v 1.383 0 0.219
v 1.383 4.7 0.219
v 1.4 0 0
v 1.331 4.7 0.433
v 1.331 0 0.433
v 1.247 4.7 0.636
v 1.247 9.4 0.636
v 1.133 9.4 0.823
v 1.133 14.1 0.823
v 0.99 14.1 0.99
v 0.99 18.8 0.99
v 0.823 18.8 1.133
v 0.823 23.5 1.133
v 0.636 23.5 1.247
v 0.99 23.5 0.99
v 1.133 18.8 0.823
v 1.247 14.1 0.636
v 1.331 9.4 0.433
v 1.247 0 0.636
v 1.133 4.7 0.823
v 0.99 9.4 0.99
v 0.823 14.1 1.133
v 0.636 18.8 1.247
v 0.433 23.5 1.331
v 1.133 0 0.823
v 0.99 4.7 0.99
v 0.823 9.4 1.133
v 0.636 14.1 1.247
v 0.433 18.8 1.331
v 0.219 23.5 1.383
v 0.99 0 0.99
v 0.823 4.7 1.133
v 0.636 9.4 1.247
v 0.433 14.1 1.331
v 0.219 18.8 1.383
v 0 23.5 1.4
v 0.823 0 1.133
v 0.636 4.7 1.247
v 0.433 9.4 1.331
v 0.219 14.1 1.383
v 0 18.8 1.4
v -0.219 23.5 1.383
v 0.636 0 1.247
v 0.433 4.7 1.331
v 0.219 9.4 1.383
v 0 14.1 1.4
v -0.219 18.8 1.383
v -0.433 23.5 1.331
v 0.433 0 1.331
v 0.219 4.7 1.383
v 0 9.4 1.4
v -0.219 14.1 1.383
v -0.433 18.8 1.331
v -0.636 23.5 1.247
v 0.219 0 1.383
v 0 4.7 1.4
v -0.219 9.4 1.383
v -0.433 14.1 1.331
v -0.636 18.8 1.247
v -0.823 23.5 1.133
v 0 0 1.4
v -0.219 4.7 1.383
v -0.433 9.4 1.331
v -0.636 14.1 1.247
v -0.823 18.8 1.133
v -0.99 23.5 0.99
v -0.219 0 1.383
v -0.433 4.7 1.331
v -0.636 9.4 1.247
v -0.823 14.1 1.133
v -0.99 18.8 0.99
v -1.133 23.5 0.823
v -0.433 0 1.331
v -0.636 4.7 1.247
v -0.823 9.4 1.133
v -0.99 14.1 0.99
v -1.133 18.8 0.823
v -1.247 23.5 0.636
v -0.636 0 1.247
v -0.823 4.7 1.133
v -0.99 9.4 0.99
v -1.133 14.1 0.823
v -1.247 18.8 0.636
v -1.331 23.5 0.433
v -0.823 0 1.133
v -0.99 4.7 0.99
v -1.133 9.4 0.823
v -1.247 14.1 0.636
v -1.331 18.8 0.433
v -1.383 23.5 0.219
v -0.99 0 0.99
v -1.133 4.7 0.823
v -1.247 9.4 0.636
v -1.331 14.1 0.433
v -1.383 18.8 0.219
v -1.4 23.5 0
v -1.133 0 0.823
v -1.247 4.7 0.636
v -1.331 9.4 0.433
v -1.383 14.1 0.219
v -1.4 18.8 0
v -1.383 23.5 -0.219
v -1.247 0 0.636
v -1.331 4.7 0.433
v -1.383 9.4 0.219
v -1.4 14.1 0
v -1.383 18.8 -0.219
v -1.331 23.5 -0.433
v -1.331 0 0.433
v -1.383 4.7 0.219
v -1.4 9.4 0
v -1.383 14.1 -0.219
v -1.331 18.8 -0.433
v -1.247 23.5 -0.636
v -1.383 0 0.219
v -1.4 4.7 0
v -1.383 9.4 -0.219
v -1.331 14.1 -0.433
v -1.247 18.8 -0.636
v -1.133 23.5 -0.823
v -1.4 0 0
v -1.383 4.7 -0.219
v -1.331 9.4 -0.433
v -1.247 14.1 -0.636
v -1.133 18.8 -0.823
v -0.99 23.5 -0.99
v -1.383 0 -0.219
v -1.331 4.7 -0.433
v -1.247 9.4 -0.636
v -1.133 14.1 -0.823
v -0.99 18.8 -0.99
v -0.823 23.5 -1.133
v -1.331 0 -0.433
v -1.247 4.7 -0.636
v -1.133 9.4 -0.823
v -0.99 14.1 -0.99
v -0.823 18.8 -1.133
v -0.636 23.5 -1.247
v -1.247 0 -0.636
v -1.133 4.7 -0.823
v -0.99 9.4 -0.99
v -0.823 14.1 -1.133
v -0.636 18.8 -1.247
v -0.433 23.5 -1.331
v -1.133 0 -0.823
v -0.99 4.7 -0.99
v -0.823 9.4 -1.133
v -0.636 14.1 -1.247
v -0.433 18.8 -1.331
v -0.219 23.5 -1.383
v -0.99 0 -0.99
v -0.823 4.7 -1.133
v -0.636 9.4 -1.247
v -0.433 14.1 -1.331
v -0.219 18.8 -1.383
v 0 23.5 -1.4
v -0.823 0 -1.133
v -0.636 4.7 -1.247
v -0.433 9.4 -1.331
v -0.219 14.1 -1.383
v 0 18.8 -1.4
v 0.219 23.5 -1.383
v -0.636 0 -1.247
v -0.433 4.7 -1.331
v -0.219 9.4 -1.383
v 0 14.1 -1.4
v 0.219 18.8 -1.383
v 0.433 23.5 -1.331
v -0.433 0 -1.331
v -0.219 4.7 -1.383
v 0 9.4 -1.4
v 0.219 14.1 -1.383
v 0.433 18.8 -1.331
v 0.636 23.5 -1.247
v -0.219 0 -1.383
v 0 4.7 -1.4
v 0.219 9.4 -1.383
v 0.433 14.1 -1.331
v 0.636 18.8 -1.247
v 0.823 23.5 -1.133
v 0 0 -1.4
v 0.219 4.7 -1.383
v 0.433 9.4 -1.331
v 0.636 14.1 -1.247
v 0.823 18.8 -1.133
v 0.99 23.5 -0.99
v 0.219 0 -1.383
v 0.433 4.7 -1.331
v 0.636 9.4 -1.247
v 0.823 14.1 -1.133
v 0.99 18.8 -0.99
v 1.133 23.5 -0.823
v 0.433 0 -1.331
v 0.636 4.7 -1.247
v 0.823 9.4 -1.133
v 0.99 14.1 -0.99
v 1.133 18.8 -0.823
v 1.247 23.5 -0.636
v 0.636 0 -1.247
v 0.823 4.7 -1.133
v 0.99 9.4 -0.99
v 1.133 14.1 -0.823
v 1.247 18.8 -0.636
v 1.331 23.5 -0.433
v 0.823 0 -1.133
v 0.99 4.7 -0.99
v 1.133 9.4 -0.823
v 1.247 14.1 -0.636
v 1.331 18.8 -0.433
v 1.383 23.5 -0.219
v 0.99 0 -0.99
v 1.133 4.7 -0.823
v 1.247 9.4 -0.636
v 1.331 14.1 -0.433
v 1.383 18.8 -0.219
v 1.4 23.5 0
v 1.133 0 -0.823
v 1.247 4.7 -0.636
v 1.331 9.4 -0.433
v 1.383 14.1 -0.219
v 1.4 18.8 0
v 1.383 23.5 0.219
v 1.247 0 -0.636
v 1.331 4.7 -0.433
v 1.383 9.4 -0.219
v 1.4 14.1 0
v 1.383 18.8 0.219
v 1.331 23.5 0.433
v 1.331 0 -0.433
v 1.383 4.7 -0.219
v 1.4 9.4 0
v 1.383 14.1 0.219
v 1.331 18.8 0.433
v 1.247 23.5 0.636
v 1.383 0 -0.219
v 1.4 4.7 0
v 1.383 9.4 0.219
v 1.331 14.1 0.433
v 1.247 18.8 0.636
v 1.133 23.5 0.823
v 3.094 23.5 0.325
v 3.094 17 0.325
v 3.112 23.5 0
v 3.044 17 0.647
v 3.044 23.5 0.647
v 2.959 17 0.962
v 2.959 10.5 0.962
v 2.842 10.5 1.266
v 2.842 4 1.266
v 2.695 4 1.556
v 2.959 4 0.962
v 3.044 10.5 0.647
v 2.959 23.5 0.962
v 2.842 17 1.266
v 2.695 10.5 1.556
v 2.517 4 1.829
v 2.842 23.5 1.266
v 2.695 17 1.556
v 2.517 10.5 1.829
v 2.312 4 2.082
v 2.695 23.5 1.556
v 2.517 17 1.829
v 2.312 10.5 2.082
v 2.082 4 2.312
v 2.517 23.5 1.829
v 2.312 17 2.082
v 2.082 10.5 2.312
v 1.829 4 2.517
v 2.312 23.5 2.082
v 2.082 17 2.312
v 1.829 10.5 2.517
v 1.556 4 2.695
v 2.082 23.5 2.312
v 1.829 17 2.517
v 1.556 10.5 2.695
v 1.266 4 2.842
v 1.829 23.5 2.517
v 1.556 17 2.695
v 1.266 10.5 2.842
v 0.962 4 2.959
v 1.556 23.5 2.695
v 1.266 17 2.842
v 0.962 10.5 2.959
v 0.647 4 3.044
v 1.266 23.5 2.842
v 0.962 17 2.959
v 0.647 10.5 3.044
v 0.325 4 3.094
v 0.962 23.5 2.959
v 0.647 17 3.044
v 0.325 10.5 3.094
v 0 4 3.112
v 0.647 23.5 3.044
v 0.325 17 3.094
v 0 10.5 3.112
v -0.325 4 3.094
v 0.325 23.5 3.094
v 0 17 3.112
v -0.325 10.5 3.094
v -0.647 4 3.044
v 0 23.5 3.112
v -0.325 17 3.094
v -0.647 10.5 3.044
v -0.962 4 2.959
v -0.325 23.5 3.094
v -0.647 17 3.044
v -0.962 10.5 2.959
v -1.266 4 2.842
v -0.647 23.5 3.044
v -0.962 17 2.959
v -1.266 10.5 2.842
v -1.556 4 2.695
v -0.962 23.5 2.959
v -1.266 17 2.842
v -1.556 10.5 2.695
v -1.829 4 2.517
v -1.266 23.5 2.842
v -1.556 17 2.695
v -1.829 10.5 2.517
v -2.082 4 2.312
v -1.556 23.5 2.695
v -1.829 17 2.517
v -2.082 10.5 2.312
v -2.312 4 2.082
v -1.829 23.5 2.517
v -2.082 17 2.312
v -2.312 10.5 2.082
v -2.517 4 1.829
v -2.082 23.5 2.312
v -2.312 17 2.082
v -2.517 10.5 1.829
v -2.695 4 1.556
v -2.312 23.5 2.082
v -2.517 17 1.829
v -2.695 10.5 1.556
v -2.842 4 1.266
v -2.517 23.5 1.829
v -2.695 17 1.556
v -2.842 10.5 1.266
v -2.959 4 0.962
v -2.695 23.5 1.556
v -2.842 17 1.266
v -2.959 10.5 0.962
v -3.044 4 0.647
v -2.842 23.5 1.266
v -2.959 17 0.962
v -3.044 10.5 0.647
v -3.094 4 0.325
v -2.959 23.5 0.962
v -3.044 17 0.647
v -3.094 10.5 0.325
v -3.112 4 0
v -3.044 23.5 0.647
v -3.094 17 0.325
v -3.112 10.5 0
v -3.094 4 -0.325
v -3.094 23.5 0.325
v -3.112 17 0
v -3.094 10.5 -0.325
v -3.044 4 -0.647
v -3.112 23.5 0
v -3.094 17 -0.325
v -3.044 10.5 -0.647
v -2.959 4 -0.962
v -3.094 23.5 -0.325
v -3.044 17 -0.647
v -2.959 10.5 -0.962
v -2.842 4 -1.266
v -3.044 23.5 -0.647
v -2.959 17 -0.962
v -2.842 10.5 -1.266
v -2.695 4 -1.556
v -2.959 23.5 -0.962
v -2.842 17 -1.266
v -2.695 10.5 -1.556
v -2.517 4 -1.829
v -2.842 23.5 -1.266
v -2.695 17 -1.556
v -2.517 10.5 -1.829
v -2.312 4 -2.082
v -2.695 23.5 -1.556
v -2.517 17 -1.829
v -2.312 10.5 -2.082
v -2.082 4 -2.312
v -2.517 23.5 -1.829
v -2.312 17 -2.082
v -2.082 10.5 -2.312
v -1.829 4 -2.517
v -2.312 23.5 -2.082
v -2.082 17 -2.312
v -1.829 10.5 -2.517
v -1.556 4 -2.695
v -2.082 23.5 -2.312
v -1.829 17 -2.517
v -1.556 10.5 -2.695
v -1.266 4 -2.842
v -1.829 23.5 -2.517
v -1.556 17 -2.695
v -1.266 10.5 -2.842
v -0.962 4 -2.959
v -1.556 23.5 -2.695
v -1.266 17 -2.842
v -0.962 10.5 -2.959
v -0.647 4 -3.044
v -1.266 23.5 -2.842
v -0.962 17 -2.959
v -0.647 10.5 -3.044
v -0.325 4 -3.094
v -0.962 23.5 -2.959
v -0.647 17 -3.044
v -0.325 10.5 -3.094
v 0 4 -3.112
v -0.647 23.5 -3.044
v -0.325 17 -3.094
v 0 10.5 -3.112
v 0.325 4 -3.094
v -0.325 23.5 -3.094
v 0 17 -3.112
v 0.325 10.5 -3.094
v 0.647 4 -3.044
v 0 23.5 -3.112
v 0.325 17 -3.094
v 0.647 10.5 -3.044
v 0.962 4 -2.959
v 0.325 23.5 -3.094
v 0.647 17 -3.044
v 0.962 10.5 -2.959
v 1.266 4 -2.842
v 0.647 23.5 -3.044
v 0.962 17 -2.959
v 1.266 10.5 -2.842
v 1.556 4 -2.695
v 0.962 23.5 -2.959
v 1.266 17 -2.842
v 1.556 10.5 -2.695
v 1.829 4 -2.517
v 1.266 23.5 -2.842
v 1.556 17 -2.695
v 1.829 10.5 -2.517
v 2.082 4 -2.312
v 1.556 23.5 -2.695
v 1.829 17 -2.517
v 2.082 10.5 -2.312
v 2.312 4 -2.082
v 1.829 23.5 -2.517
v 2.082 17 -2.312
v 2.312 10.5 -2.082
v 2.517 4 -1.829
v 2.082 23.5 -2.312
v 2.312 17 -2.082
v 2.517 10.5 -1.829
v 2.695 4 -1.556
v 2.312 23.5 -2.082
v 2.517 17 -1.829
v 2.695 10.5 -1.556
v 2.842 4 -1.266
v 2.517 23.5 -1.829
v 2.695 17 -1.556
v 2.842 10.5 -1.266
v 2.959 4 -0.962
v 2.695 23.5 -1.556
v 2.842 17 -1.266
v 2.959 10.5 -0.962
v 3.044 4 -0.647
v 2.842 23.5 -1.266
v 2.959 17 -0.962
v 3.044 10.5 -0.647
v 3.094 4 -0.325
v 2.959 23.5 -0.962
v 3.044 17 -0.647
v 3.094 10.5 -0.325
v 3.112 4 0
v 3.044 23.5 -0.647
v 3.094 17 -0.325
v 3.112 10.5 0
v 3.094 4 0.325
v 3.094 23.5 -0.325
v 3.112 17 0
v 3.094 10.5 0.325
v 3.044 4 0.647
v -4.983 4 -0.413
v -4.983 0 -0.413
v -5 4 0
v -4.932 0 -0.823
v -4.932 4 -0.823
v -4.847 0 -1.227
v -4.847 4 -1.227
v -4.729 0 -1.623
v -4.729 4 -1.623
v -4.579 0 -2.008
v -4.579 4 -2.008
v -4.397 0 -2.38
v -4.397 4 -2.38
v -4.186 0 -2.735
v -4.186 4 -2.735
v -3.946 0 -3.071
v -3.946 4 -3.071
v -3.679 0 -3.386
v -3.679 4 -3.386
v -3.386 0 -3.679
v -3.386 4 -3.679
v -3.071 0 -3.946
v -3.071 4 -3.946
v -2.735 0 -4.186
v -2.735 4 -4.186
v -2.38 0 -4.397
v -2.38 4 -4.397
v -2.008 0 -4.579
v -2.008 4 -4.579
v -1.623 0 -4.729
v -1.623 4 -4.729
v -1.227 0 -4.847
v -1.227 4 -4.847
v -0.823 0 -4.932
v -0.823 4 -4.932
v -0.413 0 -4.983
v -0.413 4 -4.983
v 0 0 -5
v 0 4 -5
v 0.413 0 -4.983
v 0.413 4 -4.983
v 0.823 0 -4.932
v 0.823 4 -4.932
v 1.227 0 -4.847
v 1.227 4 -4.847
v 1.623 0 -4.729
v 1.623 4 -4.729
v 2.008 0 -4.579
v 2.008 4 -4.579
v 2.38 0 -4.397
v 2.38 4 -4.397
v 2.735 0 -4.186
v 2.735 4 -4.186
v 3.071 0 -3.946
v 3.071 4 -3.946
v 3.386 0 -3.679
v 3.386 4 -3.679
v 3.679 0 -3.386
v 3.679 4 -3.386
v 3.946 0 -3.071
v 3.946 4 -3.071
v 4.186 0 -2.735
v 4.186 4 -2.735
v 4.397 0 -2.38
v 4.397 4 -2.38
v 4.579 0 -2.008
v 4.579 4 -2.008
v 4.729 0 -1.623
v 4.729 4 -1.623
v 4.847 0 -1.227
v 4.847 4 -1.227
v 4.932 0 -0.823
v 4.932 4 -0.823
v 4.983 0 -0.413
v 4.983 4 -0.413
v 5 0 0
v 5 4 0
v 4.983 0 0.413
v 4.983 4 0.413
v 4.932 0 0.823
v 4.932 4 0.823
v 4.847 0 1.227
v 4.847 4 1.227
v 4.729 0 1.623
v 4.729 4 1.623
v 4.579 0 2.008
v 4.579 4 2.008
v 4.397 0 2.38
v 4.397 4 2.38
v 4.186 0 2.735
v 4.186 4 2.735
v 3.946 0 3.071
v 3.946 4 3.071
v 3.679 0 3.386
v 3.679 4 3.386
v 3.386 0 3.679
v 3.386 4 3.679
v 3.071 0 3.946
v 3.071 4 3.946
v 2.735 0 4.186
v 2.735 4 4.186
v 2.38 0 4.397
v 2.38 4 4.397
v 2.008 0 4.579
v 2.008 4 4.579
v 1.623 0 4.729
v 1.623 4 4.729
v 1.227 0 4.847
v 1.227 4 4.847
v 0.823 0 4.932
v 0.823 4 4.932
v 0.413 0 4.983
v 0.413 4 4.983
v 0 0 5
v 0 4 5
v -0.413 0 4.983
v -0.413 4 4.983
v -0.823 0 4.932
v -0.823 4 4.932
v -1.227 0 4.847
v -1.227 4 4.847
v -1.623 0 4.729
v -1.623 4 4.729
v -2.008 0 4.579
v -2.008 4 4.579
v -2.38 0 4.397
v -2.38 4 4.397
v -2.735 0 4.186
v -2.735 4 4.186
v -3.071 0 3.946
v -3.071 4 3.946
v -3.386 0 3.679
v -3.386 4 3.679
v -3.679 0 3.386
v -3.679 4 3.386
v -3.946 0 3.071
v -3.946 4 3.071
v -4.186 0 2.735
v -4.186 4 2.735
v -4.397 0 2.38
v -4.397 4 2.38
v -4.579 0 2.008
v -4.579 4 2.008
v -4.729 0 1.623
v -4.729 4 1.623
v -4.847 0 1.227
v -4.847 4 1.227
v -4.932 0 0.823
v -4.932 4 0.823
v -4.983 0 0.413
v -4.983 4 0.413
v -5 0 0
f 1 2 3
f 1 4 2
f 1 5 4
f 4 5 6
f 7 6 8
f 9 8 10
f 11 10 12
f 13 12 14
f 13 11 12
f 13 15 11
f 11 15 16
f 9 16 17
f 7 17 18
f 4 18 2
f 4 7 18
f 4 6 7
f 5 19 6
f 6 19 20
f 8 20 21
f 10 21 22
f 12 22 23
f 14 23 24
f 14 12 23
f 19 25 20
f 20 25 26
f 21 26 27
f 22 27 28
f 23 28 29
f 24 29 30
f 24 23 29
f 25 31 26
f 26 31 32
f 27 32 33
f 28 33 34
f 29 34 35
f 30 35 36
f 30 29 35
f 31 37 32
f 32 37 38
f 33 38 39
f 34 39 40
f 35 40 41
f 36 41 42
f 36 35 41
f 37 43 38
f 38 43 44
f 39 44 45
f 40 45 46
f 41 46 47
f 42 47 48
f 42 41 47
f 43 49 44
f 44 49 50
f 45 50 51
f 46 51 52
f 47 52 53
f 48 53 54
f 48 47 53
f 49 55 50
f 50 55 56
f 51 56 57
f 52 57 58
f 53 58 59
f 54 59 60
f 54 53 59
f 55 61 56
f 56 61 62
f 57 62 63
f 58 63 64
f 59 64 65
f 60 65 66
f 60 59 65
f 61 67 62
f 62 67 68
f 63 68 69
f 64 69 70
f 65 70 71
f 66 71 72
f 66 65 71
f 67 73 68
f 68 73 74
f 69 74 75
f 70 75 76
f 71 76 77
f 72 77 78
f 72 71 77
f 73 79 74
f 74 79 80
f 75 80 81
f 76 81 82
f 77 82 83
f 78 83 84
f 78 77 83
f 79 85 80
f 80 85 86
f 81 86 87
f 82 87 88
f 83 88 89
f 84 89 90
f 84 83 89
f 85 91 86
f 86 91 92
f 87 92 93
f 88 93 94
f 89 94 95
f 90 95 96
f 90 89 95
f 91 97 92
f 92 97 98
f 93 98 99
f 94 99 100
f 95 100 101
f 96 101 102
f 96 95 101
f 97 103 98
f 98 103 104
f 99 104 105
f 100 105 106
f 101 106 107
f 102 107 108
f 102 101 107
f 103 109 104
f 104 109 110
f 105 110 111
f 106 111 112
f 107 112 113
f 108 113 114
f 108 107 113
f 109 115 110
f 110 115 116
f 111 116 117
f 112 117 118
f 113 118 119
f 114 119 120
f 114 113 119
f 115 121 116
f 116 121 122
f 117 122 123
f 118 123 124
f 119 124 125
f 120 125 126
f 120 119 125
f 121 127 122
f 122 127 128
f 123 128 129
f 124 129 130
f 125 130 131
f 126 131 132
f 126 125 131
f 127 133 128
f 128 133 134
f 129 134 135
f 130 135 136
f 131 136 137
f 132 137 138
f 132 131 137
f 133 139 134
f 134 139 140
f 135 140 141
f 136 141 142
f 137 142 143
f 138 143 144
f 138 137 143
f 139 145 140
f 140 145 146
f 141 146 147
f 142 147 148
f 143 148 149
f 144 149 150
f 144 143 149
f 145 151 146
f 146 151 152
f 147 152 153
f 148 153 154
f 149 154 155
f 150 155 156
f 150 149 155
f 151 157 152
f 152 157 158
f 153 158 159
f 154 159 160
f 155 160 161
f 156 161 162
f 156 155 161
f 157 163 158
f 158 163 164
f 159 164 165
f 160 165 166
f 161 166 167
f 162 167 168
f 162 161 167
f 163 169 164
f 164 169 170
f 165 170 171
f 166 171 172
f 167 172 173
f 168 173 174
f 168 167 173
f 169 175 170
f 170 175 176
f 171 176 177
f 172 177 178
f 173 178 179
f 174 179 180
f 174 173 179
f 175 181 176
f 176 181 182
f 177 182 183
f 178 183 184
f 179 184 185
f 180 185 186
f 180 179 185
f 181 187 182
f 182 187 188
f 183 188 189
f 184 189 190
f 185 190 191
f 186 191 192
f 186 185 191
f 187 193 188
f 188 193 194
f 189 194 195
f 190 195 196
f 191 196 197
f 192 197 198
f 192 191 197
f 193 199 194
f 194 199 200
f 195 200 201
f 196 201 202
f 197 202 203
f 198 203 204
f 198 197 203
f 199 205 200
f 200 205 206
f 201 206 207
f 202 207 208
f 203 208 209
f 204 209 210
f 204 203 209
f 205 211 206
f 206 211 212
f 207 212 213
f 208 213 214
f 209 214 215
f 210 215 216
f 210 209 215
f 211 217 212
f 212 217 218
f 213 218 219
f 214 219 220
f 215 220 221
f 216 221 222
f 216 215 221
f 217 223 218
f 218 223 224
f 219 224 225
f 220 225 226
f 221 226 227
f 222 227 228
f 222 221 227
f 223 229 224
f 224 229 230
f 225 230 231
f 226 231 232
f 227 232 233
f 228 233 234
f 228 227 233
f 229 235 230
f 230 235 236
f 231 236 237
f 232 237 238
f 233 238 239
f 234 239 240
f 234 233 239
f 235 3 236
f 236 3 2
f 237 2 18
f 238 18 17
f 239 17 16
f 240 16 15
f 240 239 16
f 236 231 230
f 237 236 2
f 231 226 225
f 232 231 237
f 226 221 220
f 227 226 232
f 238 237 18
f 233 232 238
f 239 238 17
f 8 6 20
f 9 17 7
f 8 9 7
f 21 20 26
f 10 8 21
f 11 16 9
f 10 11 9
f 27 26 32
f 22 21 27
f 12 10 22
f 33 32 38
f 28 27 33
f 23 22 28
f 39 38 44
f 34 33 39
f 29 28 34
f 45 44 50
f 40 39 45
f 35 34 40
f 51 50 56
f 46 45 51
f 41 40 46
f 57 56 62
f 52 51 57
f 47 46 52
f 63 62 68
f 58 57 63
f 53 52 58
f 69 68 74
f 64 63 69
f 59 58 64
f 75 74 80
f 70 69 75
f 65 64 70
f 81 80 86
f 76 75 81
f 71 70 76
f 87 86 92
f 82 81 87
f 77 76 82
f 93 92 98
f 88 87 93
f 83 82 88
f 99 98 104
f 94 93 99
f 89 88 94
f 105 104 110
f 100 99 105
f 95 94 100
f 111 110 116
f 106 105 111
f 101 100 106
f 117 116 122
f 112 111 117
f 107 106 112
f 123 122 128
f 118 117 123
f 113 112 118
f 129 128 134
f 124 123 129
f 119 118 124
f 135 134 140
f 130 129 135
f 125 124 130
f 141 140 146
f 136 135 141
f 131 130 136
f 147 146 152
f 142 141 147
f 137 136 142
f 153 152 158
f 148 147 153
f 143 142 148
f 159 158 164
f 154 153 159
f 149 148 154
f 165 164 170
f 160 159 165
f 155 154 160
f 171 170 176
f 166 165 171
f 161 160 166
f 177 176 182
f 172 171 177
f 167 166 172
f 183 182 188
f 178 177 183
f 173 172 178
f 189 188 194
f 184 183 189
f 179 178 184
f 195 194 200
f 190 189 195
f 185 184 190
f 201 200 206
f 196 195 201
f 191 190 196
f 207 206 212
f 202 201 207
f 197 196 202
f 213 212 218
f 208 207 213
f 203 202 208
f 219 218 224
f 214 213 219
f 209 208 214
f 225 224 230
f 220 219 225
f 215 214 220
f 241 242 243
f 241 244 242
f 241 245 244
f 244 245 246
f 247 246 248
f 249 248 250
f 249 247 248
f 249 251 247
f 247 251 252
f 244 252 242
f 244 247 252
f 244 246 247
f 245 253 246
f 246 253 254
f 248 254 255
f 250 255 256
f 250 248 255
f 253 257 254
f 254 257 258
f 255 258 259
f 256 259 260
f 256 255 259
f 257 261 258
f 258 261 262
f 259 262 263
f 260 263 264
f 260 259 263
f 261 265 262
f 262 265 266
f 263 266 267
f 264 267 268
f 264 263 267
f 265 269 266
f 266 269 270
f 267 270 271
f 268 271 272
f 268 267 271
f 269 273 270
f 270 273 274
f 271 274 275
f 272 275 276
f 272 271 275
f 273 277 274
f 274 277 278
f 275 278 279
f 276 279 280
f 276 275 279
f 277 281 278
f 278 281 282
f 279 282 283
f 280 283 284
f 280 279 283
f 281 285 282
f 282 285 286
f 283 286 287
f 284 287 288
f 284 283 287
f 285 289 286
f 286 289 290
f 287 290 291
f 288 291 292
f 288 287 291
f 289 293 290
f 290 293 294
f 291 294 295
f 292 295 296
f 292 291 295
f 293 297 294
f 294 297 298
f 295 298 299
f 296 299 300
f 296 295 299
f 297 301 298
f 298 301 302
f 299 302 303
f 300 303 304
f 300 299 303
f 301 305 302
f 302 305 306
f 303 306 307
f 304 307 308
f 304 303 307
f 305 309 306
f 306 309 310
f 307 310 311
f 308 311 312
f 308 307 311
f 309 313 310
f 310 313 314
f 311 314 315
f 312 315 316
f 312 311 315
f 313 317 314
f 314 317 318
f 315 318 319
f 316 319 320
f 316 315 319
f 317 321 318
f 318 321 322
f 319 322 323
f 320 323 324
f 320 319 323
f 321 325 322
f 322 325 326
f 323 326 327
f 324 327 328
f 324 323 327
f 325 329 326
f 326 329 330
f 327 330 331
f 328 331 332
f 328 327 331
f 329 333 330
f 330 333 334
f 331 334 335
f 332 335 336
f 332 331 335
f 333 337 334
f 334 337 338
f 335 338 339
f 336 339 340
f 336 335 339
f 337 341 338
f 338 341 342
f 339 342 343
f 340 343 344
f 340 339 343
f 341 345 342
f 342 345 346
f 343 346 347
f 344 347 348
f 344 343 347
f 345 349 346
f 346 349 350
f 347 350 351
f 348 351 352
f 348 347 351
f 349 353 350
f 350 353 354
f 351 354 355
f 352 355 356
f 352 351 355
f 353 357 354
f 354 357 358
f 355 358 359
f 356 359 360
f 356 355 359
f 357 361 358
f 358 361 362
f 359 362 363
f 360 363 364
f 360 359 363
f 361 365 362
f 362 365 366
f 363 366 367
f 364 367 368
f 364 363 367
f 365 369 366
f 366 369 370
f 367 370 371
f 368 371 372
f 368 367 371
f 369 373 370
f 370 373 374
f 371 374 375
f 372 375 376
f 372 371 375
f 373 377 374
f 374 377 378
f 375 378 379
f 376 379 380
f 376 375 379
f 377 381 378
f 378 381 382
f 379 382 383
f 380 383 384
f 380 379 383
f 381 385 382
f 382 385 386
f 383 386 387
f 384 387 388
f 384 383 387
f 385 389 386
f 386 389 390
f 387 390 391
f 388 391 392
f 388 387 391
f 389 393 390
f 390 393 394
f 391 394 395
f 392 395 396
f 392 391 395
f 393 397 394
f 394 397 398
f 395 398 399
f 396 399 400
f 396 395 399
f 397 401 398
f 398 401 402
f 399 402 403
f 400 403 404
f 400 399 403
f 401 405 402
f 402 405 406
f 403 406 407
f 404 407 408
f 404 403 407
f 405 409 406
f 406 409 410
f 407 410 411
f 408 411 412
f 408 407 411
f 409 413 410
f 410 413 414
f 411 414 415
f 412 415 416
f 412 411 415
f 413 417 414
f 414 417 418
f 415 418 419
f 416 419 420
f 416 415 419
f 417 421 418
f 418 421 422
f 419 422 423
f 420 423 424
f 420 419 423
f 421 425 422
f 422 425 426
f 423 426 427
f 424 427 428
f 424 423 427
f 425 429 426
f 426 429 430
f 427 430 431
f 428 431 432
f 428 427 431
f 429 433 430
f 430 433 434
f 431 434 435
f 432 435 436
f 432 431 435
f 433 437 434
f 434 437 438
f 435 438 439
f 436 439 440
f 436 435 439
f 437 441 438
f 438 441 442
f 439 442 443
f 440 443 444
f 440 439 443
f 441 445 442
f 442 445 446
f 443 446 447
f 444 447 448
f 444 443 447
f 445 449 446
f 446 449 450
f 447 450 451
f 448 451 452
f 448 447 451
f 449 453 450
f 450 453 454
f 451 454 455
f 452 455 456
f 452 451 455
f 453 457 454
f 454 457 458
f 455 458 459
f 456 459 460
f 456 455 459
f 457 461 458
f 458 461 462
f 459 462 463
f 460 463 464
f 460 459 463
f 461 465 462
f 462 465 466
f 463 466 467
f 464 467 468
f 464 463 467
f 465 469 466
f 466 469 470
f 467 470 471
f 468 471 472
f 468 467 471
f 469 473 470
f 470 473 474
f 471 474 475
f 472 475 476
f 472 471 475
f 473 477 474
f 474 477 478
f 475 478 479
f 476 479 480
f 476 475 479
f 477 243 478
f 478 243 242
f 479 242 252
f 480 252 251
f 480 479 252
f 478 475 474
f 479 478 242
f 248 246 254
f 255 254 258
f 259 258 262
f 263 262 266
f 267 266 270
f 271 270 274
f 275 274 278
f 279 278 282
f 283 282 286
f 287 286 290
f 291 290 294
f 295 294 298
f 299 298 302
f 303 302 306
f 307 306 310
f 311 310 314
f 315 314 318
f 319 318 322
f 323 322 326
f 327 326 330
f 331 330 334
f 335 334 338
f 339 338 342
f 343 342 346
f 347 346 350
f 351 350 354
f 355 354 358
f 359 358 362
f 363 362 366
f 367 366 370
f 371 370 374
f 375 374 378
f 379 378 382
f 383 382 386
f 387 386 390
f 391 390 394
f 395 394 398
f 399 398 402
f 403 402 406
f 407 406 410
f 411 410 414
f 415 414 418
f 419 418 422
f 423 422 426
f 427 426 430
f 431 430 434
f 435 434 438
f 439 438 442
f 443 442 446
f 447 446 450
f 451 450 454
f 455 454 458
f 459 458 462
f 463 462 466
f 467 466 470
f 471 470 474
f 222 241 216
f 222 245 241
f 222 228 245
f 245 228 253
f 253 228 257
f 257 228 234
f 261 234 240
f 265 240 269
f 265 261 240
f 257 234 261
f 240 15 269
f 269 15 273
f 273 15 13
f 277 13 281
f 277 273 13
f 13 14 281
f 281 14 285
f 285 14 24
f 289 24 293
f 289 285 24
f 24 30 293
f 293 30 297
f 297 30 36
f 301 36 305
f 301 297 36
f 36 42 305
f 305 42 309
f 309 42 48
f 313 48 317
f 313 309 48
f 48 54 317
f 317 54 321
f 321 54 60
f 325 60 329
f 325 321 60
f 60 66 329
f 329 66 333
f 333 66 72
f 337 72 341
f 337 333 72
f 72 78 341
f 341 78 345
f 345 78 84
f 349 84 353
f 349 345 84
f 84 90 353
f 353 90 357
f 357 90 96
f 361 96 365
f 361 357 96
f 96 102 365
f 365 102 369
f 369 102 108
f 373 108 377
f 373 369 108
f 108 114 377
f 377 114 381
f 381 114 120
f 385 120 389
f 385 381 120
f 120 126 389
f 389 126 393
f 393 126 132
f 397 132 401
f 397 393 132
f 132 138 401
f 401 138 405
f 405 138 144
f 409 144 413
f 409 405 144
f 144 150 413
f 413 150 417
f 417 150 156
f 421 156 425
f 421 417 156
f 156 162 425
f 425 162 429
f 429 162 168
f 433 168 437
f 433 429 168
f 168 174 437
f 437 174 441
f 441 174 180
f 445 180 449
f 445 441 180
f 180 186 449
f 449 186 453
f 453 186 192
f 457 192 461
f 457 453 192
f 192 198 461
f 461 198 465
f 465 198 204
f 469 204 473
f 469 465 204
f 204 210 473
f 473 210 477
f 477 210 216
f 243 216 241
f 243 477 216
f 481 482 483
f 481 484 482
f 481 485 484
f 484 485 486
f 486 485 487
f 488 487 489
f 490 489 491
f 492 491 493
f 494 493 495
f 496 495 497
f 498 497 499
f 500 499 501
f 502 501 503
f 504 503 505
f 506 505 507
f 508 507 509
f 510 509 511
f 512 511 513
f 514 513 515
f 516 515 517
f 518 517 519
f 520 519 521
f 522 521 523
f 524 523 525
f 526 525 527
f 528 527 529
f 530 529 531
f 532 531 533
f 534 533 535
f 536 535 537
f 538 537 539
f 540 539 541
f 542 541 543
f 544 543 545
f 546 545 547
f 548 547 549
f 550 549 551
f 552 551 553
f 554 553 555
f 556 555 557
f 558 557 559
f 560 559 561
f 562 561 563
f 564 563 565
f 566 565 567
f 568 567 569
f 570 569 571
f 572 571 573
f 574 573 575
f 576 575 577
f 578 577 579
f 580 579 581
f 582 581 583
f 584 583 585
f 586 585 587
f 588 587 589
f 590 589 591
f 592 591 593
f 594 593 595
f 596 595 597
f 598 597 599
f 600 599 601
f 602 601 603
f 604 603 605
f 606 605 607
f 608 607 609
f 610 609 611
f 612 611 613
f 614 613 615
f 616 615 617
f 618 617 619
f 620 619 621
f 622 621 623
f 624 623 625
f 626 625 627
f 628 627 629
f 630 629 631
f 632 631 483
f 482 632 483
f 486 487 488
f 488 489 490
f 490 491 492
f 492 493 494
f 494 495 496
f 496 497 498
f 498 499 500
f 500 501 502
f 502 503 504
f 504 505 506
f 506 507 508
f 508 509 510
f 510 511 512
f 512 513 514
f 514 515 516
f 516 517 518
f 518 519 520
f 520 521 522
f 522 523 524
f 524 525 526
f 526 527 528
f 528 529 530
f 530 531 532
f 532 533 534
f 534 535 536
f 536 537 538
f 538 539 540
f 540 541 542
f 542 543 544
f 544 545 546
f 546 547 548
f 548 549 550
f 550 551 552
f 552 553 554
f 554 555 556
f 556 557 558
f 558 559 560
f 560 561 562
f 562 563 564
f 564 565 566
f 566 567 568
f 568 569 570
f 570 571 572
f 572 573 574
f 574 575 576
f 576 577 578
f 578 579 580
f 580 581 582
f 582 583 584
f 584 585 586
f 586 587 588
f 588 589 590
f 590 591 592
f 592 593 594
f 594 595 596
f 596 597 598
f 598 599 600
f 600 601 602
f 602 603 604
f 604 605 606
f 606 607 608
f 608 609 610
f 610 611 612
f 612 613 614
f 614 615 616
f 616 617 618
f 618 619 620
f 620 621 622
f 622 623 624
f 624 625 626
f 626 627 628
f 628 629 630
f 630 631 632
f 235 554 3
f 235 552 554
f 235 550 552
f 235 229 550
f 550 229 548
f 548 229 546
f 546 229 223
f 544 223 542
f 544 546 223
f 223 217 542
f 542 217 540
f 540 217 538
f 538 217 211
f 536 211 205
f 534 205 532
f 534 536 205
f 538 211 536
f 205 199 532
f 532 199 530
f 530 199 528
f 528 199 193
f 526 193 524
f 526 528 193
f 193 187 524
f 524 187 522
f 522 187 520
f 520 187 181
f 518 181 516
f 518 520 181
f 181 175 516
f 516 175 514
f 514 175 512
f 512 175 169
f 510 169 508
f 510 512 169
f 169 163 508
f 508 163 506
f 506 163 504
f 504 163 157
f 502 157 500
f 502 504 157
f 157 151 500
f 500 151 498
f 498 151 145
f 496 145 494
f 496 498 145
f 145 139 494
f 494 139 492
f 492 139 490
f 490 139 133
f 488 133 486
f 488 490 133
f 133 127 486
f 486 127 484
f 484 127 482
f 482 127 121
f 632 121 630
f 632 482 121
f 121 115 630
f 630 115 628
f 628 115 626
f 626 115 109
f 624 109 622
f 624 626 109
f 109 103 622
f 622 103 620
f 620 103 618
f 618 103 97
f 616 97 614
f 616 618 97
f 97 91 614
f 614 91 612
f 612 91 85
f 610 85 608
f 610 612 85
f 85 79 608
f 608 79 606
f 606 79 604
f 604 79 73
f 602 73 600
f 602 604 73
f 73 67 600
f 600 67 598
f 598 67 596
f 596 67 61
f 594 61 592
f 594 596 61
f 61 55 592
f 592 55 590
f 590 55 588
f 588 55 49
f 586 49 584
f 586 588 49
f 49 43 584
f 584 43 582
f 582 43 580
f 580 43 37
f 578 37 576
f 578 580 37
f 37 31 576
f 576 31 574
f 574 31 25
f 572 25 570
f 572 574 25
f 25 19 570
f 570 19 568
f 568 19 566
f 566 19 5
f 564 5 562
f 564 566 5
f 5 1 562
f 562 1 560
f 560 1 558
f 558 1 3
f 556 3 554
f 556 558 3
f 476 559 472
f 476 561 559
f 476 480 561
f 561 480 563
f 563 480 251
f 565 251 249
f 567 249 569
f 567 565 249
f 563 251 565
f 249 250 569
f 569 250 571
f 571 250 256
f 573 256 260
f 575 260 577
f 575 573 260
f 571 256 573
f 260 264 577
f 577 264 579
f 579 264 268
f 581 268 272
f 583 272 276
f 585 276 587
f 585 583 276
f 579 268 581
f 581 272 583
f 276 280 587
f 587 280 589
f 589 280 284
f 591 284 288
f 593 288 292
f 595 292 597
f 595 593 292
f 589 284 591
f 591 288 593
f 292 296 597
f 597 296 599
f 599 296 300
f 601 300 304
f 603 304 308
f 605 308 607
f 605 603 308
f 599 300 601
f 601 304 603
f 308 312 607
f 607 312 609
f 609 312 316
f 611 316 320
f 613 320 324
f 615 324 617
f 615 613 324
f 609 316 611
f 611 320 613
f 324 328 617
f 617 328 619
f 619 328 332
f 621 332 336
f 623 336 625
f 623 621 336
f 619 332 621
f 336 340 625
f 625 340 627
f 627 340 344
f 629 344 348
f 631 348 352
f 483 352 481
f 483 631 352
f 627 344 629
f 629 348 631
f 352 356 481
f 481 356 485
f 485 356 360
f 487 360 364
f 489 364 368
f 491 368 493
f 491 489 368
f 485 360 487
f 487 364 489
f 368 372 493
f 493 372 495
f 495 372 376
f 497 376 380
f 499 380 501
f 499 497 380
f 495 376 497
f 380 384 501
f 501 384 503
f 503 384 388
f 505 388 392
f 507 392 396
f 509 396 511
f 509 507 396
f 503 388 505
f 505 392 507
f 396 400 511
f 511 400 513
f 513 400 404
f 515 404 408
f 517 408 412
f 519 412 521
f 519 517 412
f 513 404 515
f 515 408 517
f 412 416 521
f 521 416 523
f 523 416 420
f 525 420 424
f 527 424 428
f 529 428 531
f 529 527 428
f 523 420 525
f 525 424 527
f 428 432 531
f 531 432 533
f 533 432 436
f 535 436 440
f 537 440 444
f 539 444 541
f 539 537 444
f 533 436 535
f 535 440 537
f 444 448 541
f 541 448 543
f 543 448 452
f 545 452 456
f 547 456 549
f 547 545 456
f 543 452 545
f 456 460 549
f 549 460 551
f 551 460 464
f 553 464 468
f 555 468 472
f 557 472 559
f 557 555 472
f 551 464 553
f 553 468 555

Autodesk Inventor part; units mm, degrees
ref_plane "YZ Plane" through (0, 0, 0) normal (1, 0, 0) x (0, 1, 0)
ref_plane "XZ Plane" through (0, 0, 0) normal (0, 1, 0) x (-1, 0, 0)
ref_plane "XY Plane" through (0, 0, 0) normal (0, 0, 1) x (1, 0, 0)
sketch "Sketch1" plane through (0, 0, 0) normal (0, 1, 0) x (-1, 0, 0)
  circle A0 centre (0, 0) radius 5
  dimension "d0" = 10
extrude "Extrusion1" add sketch "Sketch1" along normal blind 4
sketch "Sketch2" plane through (0, 4, 0) normal (0, 1, 0) x (1, 0, 0)
  circle A0 centre (0, 0) radius 3.1115
  dimension "d3" = 6.223
extrude "Extrusion2" add sketch "Sketch2" along normal blind 19.5
sketch "Sketch3" plane through (0, 23.5, 0) normal (0, 1, 0) x (1, 0, 0)
  circle A0 centre (0, 0) radius 1.4
  dimension "d6" = 2.8
extrude "Extrusion3" cut sketch "Sketch3" against normal through all
properties part number "BoltandHole12"
